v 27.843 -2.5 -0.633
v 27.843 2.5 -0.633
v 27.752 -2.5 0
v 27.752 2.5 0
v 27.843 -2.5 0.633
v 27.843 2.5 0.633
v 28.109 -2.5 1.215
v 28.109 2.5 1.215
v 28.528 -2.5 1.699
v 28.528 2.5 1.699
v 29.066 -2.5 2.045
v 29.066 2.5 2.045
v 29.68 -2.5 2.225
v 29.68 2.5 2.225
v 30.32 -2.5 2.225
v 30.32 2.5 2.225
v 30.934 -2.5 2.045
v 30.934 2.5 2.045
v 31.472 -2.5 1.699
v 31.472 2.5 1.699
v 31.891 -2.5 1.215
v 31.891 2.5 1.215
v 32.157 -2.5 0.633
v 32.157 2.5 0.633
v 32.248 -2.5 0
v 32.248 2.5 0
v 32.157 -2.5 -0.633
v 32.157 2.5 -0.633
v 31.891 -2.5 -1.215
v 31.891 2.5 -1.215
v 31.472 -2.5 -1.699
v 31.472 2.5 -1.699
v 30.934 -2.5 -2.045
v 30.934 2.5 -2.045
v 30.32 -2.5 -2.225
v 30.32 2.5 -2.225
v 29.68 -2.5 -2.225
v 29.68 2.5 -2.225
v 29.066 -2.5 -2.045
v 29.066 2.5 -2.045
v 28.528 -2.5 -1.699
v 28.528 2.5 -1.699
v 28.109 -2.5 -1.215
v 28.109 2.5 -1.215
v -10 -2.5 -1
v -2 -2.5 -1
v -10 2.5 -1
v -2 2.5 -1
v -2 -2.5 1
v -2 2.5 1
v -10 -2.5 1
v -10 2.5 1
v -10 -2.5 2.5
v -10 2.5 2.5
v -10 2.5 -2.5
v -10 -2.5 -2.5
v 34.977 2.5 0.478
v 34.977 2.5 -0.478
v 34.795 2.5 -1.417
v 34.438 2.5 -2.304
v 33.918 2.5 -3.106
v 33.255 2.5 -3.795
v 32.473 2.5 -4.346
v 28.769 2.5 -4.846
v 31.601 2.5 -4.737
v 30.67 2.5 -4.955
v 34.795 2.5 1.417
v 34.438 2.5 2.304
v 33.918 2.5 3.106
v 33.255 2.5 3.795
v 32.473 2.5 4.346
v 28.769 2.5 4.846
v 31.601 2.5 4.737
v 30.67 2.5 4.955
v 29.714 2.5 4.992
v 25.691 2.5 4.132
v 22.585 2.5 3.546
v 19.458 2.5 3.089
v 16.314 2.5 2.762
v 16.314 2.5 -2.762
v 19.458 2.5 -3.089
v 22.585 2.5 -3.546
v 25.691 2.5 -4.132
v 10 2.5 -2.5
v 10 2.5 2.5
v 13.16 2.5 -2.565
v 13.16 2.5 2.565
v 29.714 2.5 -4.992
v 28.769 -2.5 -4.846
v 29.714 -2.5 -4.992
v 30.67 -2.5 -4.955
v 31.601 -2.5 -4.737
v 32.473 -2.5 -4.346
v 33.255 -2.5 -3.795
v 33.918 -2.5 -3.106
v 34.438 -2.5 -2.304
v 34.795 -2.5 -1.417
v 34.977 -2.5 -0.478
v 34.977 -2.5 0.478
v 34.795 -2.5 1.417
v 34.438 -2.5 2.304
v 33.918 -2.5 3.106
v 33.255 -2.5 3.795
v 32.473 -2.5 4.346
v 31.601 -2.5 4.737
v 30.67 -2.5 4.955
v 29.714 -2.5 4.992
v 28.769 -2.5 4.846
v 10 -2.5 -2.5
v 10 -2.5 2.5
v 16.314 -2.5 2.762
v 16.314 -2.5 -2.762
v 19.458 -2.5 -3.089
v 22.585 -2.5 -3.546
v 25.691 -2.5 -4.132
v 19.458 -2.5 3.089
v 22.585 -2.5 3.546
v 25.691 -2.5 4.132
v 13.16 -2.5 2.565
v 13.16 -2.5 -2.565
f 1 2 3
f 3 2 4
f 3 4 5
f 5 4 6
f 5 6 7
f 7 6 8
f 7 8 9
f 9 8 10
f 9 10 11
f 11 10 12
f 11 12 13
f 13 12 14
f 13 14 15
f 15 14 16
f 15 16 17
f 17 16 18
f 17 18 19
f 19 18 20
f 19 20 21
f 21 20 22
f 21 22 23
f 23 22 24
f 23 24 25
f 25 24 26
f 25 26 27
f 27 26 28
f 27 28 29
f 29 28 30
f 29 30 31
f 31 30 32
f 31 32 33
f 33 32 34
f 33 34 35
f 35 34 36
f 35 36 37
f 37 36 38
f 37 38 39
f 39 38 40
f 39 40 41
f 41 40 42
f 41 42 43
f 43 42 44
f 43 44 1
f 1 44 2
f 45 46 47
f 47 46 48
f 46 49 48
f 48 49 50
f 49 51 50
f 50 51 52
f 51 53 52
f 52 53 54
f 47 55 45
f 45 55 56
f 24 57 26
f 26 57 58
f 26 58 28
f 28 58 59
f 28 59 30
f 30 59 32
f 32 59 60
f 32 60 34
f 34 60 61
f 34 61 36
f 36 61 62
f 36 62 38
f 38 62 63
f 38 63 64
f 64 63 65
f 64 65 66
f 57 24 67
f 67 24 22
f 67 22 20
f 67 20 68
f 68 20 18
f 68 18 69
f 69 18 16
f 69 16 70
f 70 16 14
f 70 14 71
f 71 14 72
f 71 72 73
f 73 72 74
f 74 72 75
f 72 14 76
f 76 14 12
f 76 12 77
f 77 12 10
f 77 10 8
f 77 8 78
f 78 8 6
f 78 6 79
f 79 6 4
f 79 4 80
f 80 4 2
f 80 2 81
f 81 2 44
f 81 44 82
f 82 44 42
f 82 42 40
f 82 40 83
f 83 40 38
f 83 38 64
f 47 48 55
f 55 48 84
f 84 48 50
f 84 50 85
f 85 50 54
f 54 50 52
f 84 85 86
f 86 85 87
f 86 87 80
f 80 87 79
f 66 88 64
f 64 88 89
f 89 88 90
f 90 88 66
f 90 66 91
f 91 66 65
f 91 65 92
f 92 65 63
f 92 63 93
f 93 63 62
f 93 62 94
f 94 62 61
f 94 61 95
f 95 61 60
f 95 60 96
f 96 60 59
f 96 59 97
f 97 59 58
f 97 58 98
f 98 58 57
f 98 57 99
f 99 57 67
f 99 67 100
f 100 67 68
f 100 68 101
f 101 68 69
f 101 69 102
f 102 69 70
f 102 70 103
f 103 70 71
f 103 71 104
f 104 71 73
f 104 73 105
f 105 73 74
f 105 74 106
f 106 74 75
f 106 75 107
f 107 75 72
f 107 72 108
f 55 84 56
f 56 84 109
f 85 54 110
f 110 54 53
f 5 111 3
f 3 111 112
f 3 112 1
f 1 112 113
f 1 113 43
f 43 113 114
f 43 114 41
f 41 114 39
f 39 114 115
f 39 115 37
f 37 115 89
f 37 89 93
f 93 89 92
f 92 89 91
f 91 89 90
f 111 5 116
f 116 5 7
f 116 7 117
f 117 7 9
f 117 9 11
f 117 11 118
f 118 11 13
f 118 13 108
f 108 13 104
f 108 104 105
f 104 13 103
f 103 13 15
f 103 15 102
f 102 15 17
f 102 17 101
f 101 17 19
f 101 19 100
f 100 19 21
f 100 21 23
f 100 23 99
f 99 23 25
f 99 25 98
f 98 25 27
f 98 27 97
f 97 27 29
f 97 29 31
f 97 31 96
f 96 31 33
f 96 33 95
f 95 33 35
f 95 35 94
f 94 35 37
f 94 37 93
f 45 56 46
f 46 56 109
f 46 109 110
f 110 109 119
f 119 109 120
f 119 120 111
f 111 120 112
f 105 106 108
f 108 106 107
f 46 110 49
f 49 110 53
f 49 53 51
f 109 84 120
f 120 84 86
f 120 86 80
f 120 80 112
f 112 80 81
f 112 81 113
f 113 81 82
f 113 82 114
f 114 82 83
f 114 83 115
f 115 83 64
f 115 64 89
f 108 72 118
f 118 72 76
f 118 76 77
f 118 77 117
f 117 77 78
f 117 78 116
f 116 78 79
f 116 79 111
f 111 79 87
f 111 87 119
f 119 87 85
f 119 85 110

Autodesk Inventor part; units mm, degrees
ref_plane "YZ Plane" through (0, 0, 0) normal (1, 0, 0) x (0, 1, 0)
ref_plane "XZ Plane" through (0, 0, 0) normal (0, 1, 0) x (-1, 0, 0)
ref_plane "XY Plane" through (0, 0, 0) normal (0, 0, 1) x (1, 0, 0)
sketch "Sketch1" plane through (0, 0, 0) normal (0, 1, 0) x (-1, 0, 0)
  line L0 (-10, 2.5) -> (10, 2.5)
  line L1 (10, 2.5) -> (10, -2.5)
  line L2 (10, -2.5) -> (-10, -2.5)
  line L3 (-10, -2.5) -> (-10, 2.5)
  line L4 (-10, 2.5) -> (10, -2.5) construction
  line L5 (10, 2.5) -> (-10, -2.5) construction
  line L6 (10, 1) -> (2, 1)
  line L7 (2, 1) -> (2, -1)
  line L8 (2, -1) -> (10, -1)
  line L9 (10, -1) -> (10, 1)
  circle A0 centre (-30, 0) radius 5
  arc A1 (-10, -2.5) -> (-28.7692, -4.8462) centre (-10, -78.75) ccw
  arc A2 (-28.7692, 4.8462) -> (-10, 2.5) centre (-10, 78.75) ccw
  point P0 (0, 0)
  point P1 (0, 0)
  point P2 (2, 0)
  point P3 (0, 0)
  dimension "d0" = 5
  dimension "d1" = 20
  dimension "d2" = 8
  dimension "d3" = 2
  dimension "d6" = 10
  dimension "d7" = 30
extrude "Extrusion1" add sketch "Sketch1" along normal mid plane 5 contours L0 L1 L6 L7 L8 L2 L3 | L3 A1 A0 A2 | A0
sketch "Sketch3" plane through (0, 2.5, 0) normal (0, 1, 0) x (1, 0, 0)
  arc A0 (28.7692, -4.8462) -> (28.7692, -4.8462) centre (30, 0) ccw projected
  point P0 (0, 0)
  point P1 (37.473, -9.6754)
  point P2 (37.473, 9.6754)
  point P3 (23.4247, 7.5342)
hole "Hole1" at (30, 2.5, 0) direction (0, -1, 0) diameter 4.496 end through all
properties part number "ChipPusher"
